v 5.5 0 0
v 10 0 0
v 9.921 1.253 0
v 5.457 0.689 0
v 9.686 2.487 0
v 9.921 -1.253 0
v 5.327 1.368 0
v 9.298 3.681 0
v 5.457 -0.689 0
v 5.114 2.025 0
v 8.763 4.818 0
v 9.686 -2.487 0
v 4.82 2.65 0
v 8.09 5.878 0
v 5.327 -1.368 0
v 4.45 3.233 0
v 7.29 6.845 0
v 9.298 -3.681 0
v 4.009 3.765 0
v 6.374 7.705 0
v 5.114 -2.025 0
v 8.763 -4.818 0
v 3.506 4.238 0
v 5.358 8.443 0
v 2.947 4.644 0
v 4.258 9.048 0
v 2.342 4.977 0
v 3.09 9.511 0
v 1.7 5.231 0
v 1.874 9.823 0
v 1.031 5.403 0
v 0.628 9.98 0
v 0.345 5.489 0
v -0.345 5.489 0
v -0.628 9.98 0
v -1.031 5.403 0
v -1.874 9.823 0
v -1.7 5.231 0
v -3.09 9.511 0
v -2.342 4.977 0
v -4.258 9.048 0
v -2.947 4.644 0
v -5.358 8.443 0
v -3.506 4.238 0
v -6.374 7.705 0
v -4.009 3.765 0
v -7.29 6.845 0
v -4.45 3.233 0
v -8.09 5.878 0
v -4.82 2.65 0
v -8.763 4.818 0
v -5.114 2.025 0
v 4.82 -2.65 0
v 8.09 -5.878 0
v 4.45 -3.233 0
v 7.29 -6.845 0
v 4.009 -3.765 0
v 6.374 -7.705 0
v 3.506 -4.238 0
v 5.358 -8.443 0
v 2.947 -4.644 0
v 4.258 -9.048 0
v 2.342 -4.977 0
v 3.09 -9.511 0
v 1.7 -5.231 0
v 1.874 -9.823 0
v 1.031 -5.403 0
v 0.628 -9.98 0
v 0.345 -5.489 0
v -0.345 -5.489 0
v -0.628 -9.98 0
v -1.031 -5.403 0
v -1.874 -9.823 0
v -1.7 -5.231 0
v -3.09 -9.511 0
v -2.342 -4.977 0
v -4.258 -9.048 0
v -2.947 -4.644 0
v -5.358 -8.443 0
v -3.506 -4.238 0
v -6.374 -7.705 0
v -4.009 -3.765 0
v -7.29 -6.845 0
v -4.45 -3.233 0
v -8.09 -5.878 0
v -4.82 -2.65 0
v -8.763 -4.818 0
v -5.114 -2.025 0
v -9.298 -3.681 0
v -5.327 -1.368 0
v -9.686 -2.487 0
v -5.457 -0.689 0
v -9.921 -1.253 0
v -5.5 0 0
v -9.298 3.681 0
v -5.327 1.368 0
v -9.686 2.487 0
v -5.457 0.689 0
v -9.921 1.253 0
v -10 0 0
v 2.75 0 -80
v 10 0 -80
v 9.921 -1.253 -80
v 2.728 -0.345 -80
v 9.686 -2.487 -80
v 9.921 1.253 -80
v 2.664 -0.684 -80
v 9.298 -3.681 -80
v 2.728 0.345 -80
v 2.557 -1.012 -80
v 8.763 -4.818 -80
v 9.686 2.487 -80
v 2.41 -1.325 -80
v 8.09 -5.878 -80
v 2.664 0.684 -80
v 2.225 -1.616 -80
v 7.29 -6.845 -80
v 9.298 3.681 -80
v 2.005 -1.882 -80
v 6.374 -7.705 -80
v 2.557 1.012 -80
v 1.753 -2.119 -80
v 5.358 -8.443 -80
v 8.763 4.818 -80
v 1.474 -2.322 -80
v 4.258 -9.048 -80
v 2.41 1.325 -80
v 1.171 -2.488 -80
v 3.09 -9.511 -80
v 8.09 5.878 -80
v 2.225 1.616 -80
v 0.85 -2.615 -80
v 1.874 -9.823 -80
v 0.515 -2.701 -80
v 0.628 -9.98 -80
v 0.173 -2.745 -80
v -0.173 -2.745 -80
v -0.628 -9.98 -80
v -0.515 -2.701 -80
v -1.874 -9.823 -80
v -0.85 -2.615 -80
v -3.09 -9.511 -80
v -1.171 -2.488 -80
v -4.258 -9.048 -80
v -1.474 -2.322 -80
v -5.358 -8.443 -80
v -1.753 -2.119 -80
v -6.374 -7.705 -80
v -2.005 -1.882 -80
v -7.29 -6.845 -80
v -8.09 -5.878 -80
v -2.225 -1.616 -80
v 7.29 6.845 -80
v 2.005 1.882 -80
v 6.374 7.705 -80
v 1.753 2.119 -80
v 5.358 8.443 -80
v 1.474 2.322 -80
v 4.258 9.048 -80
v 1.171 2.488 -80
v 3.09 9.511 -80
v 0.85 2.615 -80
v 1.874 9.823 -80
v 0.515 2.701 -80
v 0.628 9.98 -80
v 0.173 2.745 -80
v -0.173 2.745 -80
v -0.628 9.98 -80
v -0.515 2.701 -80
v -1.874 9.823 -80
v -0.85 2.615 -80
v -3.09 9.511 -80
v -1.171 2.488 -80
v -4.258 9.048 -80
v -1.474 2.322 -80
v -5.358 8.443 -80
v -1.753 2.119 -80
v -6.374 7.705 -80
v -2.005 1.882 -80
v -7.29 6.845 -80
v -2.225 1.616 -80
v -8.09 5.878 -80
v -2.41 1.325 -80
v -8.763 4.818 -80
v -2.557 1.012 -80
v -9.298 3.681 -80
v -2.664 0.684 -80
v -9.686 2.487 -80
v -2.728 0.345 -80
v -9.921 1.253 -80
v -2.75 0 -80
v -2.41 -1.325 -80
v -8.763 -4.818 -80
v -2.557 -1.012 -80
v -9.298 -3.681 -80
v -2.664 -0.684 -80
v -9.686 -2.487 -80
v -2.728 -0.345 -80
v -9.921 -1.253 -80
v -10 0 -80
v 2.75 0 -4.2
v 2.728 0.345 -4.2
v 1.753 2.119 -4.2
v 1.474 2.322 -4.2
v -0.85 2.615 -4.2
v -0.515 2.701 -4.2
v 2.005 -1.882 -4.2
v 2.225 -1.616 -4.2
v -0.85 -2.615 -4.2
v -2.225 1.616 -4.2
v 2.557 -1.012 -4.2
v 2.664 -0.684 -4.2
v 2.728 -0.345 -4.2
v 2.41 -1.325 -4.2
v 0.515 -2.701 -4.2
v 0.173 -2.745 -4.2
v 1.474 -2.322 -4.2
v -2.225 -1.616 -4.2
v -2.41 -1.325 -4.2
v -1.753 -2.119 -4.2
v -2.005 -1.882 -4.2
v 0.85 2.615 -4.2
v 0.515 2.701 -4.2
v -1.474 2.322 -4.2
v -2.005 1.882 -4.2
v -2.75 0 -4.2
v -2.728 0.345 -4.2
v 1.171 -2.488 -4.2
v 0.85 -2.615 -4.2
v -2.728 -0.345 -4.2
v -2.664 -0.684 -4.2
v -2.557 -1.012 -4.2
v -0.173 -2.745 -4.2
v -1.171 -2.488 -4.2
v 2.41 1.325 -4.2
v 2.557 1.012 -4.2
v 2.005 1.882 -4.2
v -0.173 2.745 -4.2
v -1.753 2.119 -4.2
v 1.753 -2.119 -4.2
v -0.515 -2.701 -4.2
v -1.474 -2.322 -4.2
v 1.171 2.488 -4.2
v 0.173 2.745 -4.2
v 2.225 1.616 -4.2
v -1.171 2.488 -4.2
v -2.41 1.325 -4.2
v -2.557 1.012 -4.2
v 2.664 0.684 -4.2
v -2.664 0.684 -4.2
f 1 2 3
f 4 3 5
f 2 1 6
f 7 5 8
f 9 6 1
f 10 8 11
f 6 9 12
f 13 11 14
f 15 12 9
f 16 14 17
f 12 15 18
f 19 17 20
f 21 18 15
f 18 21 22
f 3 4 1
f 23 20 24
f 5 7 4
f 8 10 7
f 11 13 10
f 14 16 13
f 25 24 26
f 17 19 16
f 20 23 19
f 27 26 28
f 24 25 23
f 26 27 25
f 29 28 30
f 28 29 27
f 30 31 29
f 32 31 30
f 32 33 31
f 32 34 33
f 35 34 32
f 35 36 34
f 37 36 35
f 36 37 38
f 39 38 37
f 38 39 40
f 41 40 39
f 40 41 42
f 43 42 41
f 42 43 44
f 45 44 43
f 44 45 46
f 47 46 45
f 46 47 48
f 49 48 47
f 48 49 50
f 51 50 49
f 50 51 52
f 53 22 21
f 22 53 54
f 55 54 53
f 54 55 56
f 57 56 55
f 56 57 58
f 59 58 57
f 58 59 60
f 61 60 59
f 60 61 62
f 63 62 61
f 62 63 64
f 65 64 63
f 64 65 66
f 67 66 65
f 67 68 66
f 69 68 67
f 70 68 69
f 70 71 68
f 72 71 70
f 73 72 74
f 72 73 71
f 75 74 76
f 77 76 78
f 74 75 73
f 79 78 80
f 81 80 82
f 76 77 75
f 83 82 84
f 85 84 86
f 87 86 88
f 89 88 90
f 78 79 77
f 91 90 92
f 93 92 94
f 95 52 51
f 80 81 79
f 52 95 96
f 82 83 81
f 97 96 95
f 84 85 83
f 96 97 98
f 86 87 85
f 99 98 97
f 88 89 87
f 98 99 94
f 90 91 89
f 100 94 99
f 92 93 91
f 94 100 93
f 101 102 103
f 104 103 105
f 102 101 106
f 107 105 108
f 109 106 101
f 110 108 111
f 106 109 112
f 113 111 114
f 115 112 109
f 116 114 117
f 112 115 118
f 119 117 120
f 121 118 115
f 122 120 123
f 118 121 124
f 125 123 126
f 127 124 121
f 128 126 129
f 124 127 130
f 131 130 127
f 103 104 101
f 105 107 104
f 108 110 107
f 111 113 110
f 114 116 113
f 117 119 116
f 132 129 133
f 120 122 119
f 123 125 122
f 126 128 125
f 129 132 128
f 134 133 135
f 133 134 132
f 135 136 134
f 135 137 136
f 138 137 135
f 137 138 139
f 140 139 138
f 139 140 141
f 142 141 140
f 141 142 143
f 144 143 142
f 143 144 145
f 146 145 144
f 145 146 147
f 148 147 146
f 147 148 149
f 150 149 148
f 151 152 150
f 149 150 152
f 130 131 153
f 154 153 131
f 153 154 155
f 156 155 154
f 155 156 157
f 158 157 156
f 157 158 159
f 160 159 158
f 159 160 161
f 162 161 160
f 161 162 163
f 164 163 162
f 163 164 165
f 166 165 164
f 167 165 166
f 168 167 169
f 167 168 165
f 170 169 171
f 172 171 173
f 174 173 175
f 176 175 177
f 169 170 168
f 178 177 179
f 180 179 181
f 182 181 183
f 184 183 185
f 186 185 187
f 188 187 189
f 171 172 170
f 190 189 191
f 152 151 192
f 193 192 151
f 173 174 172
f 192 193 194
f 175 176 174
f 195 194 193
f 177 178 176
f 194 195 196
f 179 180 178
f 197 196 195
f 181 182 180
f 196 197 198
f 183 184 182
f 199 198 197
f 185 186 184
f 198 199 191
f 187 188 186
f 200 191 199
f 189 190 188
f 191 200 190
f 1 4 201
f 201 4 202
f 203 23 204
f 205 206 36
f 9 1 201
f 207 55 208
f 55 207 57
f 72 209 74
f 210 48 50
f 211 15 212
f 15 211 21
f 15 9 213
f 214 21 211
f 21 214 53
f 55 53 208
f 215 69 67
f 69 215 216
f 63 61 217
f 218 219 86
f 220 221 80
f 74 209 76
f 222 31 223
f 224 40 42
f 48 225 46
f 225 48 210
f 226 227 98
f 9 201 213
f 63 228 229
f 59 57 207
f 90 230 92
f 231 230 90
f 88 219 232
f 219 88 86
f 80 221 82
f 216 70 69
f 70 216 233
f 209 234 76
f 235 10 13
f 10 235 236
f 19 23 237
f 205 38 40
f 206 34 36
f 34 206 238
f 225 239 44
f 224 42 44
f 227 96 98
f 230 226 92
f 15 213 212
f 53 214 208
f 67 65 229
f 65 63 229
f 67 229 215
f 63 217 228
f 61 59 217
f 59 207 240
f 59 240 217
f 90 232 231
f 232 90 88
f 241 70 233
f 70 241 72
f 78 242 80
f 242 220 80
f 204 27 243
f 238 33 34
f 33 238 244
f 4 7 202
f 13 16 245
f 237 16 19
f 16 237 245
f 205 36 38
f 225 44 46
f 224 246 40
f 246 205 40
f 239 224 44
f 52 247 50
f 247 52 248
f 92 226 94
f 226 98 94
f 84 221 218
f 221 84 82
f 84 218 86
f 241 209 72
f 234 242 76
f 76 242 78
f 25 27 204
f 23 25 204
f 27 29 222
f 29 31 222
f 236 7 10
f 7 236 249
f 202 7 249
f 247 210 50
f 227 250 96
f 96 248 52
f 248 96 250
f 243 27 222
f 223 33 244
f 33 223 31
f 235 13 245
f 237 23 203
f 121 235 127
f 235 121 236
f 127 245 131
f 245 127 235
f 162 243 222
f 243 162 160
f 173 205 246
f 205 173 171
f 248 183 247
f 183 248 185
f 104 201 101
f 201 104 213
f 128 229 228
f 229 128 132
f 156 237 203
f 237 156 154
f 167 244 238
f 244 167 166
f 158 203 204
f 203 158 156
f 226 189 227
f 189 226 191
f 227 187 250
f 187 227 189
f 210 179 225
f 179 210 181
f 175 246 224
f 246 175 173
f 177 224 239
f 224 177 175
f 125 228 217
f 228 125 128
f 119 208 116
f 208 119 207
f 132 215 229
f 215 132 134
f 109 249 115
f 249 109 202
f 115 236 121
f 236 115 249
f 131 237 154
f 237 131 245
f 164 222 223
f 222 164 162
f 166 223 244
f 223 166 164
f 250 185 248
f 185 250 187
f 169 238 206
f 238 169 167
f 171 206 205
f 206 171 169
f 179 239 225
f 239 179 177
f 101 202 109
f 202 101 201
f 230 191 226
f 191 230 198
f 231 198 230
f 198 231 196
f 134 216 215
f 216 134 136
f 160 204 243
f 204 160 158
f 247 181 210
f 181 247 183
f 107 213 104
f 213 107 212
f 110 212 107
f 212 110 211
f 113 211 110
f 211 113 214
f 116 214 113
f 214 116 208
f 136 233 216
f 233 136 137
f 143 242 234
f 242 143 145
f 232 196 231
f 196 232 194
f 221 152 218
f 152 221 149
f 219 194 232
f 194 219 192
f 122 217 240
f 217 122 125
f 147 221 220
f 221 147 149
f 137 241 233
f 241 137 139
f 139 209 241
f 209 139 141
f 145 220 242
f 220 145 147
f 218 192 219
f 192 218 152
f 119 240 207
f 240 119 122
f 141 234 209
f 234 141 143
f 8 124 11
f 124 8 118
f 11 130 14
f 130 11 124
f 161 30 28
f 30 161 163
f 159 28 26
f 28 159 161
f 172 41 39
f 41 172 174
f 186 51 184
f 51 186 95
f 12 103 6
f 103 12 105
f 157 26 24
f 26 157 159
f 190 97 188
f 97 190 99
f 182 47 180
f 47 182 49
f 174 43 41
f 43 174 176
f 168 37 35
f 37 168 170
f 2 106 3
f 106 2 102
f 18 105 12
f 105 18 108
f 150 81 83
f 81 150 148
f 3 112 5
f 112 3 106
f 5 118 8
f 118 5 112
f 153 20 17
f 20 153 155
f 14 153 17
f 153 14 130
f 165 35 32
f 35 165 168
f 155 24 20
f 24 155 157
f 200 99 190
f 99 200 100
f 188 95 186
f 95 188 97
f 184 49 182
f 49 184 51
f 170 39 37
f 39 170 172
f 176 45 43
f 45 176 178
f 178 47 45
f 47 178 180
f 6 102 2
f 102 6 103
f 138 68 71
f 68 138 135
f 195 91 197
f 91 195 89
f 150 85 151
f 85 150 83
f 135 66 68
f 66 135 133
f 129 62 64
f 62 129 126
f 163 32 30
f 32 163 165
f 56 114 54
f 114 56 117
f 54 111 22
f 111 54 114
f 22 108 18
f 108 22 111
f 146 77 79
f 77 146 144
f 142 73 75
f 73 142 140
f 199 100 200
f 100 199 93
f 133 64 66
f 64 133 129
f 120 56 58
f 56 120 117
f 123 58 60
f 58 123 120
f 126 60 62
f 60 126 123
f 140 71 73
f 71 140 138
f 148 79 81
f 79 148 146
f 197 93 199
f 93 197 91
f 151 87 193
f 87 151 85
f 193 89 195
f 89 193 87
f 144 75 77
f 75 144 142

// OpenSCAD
$fn = 50;


difference() {
	union() {
		translate(v = [0, 0, -80.0000000000]) {
			cylinder(h = 80, r = 10.0000000000);
		}
		cylinder(h = 0, r = 16.0000000000);
	}
	union() {
		translate(v = [0, 0, 0]) {
			rotate(a = [0, 0, 0]) {
				difference() {
					union() {
						#translate(v = [0, 0, -80.0000000000]) {
							cylinder(h = 80, r = 2.2500000000);
						}
						#translate(v = [0, 0, -4.2000000000]) {
							cylinder(h = 4.2000000000, r = 10.0000000000, r1 = 2.7500000000, r2 = 5.5000000000);
						}
						#translate(v = [0, 0, -80.0000000000]) {
							cylinder(h = 80, r = 2.7500000000);
						}
						#translate(v = [0, 0, -80.0000000000]) {
							cylinder(h = 80, r = 2.2500000000);
						}
					}
					union();
				}
			}
		}
	}
}
